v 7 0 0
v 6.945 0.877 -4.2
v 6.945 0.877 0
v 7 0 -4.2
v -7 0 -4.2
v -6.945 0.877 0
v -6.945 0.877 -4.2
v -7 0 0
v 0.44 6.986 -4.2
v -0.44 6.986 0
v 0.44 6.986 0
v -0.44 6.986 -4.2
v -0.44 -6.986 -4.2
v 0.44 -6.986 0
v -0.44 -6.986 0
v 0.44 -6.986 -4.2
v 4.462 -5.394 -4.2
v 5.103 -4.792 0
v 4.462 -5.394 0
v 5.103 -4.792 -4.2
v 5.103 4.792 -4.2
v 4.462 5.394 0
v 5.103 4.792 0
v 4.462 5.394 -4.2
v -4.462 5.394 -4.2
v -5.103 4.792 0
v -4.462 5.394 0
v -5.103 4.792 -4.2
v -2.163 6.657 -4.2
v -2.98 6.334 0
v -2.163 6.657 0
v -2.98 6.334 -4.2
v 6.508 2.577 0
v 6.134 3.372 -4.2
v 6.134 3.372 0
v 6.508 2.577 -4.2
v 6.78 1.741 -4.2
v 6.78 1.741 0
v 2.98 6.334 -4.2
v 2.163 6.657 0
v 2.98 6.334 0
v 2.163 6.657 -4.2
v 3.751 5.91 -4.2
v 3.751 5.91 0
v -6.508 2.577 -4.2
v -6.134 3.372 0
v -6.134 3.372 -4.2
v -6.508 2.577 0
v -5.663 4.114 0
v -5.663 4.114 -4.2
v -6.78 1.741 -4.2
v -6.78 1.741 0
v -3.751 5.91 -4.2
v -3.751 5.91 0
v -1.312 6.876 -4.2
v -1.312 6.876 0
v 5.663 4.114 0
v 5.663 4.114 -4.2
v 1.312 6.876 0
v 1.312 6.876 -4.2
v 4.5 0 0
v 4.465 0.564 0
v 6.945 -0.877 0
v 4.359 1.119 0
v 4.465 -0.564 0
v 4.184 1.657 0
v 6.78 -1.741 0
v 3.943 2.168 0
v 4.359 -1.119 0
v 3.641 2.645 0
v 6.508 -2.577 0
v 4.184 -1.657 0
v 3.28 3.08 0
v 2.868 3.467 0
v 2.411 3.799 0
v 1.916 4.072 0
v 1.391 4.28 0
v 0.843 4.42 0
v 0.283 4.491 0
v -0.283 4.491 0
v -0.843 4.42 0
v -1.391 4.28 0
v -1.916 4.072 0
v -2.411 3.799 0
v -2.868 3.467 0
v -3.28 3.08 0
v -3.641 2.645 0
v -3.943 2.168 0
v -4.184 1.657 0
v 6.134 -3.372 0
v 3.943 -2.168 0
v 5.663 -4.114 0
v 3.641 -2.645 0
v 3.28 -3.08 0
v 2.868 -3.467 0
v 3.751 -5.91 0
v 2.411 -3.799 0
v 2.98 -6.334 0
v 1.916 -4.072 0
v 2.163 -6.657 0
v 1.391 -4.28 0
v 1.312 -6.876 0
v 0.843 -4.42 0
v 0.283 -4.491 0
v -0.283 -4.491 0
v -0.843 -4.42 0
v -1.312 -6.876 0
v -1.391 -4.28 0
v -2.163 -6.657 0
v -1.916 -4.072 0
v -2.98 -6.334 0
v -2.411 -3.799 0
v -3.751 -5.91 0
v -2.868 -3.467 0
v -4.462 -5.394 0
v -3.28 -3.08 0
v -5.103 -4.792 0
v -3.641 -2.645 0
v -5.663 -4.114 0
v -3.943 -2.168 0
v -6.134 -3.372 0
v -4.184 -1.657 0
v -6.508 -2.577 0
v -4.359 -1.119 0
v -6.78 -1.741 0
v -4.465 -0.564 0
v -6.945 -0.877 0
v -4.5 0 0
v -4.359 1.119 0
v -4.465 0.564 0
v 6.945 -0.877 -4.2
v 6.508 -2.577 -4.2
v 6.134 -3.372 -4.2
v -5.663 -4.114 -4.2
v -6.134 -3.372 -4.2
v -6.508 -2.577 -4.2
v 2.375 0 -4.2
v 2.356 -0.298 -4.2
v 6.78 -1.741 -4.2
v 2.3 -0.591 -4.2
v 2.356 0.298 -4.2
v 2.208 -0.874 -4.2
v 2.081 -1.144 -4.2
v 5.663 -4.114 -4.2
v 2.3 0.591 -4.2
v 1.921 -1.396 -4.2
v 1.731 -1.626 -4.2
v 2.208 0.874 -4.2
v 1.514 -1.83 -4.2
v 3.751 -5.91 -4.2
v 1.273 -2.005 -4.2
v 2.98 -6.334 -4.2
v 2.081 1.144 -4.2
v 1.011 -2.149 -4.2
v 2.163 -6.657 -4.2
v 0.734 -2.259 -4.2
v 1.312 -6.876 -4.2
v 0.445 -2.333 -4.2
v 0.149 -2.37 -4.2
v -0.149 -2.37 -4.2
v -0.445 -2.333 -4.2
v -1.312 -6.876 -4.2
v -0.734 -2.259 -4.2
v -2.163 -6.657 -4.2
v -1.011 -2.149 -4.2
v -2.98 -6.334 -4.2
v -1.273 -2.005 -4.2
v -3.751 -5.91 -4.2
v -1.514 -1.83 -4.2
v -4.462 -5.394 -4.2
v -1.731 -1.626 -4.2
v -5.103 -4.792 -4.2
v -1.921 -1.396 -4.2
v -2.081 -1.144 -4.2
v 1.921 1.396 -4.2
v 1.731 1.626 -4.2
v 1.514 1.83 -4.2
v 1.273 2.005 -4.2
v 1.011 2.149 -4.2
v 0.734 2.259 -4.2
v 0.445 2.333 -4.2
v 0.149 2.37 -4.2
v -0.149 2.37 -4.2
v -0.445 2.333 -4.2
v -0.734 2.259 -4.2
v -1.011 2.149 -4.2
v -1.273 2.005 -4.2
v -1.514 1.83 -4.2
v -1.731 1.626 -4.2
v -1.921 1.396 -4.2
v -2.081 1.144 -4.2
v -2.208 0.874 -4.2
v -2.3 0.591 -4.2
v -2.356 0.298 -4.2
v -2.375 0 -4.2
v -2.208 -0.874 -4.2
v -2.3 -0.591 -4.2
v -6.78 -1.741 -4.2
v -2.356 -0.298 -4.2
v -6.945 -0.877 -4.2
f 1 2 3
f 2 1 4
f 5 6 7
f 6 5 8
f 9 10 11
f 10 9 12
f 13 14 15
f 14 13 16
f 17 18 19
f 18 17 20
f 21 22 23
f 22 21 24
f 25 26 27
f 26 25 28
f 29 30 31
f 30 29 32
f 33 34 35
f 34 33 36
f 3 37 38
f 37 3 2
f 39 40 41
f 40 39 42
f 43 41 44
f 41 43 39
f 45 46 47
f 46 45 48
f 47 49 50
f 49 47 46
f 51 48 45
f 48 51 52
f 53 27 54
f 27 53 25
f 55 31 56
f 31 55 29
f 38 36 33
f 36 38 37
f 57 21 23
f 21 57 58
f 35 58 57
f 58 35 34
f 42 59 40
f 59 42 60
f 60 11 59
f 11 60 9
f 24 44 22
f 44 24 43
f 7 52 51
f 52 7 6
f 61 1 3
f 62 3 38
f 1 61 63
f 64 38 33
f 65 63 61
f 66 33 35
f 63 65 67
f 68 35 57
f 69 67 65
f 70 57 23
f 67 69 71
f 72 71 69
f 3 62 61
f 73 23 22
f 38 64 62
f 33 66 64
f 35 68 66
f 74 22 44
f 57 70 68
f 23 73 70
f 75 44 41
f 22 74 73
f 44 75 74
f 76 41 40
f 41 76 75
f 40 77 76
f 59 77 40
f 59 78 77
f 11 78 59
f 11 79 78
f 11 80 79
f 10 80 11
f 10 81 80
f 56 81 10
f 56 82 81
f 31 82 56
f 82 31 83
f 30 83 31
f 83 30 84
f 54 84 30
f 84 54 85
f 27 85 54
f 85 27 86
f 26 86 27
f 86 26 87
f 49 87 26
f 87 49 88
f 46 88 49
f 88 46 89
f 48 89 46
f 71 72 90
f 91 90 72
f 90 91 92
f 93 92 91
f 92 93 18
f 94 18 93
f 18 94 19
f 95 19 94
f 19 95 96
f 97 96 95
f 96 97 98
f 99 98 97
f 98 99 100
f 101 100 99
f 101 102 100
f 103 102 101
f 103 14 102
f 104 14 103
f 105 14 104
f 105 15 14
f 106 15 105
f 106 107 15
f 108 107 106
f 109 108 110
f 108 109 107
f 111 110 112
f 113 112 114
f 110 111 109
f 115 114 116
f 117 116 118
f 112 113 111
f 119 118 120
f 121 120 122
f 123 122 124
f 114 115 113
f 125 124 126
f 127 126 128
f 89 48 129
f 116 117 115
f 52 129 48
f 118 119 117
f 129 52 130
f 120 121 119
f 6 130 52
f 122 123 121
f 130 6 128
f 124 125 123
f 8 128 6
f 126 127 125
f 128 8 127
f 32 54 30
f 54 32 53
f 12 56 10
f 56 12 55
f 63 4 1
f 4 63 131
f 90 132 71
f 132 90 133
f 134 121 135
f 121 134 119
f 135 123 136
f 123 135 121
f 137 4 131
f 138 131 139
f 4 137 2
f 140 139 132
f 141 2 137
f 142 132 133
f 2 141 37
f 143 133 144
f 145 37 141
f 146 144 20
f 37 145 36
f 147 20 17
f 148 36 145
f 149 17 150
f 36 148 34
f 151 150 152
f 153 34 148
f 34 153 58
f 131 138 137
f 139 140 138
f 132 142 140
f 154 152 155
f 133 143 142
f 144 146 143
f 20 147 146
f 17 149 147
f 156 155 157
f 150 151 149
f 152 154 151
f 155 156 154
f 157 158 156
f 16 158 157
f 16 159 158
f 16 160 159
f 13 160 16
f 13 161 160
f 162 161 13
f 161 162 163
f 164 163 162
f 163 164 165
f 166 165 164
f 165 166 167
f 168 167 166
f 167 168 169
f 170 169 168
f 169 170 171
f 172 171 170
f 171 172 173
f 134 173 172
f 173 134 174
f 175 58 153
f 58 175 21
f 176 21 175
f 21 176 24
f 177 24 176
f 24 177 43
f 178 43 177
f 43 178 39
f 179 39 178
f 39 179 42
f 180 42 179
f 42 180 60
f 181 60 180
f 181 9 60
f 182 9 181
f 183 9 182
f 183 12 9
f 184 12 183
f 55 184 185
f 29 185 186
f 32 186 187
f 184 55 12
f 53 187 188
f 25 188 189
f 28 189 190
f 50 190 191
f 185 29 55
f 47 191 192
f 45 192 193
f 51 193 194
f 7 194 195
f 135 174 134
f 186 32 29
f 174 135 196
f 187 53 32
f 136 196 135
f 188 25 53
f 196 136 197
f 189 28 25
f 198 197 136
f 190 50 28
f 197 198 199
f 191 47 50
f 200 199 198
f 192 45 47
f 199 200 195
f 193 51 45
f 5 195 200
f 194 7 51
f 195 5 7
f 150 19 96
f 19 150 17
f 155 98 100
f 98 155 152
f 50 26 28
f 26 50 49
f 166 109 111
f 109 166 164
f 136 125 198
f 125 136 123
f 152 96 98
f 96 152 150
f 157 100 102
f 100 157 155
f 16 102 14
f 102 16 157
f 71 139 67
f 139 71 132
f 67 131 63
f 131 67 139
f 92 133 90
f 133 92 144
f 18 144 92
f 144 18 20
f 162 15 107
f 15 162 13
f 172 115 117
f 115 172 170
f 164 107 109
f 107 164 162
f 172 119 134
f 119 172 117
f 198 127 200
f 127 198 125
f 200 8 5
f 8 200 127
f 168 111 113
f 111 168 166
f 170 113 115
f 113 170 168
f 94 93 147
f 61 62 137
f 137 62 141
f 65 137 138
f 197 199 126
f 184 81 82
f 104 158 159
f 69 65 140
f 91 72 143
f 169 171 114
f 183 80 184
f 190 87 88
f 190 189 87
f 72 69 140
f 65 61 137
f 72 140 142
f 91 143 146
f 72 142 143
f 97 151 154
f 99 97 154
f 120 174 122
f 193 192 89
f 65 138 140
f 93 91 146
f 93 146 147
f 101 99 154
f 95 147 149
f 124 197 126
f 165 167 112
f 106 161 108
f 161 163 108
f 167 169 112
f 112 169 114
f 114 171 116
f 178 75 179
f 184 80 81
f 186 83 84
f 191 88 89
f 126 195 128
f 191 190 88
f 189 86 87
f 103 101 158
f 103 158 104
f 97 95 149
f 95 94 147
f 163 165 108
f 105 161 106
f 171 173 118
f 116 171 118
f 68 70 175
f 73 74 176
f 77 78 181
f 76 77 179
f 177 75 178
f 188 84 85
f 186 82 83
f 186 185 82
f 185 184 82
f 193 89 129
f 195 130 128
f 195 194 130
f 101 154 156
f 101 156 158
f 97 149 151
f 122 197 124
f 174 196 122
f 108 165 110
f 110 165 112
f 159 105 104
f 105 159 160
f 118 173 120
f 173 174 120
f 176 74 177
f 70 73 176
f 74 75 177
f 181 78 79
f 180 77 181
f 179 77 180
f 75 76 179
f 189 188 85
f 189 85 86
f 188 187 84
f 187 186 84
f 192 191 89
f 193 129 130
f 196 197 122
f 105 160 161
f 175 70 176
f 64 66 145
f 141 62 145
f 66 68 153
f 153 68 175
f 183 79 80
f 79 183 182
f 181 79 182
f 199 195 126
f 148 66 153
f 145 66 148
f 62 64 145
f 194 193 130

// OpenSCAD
$fn = 50;


difference() {
	union() {
		translate(v = [0, 0, -4.2000000000]) {
			cylinder(h = 4.2000000000, r = 7.0000000000);
		}
		translate(v = [0, 0, -4.2000000000]) {
			cylinder(h = 4.2000000000, r = 2.8750000000);
		}
	}
	union() {
		translate(v = [0, 0, 0]) {
			rotate(a = [0, 0, 0]) {
				difference() {
					union() {
						translate(v = [0, 0, -4.2000000000]) {
							cylinder(h = 4.2000000000, r = 2.2500000000);
						}
						translate(v = [0, 0, -4.2000000000]) {
							cylinder(h = 4.2000000000, r1 = 2.3750000000, r2 = 4.5000000000);
						}
						translate(v = [0, 0, -4.2000000000]) {
							cylinder(h = 4.2000000000, r = 2.3750000000);
						}
						translate(v = [0, 0, -4.2000000000]) {
							cylinder(h = 4.2000000000, r = 2.2500000000);
						}
					}
					union();
				}
			}
		}
	}
}
